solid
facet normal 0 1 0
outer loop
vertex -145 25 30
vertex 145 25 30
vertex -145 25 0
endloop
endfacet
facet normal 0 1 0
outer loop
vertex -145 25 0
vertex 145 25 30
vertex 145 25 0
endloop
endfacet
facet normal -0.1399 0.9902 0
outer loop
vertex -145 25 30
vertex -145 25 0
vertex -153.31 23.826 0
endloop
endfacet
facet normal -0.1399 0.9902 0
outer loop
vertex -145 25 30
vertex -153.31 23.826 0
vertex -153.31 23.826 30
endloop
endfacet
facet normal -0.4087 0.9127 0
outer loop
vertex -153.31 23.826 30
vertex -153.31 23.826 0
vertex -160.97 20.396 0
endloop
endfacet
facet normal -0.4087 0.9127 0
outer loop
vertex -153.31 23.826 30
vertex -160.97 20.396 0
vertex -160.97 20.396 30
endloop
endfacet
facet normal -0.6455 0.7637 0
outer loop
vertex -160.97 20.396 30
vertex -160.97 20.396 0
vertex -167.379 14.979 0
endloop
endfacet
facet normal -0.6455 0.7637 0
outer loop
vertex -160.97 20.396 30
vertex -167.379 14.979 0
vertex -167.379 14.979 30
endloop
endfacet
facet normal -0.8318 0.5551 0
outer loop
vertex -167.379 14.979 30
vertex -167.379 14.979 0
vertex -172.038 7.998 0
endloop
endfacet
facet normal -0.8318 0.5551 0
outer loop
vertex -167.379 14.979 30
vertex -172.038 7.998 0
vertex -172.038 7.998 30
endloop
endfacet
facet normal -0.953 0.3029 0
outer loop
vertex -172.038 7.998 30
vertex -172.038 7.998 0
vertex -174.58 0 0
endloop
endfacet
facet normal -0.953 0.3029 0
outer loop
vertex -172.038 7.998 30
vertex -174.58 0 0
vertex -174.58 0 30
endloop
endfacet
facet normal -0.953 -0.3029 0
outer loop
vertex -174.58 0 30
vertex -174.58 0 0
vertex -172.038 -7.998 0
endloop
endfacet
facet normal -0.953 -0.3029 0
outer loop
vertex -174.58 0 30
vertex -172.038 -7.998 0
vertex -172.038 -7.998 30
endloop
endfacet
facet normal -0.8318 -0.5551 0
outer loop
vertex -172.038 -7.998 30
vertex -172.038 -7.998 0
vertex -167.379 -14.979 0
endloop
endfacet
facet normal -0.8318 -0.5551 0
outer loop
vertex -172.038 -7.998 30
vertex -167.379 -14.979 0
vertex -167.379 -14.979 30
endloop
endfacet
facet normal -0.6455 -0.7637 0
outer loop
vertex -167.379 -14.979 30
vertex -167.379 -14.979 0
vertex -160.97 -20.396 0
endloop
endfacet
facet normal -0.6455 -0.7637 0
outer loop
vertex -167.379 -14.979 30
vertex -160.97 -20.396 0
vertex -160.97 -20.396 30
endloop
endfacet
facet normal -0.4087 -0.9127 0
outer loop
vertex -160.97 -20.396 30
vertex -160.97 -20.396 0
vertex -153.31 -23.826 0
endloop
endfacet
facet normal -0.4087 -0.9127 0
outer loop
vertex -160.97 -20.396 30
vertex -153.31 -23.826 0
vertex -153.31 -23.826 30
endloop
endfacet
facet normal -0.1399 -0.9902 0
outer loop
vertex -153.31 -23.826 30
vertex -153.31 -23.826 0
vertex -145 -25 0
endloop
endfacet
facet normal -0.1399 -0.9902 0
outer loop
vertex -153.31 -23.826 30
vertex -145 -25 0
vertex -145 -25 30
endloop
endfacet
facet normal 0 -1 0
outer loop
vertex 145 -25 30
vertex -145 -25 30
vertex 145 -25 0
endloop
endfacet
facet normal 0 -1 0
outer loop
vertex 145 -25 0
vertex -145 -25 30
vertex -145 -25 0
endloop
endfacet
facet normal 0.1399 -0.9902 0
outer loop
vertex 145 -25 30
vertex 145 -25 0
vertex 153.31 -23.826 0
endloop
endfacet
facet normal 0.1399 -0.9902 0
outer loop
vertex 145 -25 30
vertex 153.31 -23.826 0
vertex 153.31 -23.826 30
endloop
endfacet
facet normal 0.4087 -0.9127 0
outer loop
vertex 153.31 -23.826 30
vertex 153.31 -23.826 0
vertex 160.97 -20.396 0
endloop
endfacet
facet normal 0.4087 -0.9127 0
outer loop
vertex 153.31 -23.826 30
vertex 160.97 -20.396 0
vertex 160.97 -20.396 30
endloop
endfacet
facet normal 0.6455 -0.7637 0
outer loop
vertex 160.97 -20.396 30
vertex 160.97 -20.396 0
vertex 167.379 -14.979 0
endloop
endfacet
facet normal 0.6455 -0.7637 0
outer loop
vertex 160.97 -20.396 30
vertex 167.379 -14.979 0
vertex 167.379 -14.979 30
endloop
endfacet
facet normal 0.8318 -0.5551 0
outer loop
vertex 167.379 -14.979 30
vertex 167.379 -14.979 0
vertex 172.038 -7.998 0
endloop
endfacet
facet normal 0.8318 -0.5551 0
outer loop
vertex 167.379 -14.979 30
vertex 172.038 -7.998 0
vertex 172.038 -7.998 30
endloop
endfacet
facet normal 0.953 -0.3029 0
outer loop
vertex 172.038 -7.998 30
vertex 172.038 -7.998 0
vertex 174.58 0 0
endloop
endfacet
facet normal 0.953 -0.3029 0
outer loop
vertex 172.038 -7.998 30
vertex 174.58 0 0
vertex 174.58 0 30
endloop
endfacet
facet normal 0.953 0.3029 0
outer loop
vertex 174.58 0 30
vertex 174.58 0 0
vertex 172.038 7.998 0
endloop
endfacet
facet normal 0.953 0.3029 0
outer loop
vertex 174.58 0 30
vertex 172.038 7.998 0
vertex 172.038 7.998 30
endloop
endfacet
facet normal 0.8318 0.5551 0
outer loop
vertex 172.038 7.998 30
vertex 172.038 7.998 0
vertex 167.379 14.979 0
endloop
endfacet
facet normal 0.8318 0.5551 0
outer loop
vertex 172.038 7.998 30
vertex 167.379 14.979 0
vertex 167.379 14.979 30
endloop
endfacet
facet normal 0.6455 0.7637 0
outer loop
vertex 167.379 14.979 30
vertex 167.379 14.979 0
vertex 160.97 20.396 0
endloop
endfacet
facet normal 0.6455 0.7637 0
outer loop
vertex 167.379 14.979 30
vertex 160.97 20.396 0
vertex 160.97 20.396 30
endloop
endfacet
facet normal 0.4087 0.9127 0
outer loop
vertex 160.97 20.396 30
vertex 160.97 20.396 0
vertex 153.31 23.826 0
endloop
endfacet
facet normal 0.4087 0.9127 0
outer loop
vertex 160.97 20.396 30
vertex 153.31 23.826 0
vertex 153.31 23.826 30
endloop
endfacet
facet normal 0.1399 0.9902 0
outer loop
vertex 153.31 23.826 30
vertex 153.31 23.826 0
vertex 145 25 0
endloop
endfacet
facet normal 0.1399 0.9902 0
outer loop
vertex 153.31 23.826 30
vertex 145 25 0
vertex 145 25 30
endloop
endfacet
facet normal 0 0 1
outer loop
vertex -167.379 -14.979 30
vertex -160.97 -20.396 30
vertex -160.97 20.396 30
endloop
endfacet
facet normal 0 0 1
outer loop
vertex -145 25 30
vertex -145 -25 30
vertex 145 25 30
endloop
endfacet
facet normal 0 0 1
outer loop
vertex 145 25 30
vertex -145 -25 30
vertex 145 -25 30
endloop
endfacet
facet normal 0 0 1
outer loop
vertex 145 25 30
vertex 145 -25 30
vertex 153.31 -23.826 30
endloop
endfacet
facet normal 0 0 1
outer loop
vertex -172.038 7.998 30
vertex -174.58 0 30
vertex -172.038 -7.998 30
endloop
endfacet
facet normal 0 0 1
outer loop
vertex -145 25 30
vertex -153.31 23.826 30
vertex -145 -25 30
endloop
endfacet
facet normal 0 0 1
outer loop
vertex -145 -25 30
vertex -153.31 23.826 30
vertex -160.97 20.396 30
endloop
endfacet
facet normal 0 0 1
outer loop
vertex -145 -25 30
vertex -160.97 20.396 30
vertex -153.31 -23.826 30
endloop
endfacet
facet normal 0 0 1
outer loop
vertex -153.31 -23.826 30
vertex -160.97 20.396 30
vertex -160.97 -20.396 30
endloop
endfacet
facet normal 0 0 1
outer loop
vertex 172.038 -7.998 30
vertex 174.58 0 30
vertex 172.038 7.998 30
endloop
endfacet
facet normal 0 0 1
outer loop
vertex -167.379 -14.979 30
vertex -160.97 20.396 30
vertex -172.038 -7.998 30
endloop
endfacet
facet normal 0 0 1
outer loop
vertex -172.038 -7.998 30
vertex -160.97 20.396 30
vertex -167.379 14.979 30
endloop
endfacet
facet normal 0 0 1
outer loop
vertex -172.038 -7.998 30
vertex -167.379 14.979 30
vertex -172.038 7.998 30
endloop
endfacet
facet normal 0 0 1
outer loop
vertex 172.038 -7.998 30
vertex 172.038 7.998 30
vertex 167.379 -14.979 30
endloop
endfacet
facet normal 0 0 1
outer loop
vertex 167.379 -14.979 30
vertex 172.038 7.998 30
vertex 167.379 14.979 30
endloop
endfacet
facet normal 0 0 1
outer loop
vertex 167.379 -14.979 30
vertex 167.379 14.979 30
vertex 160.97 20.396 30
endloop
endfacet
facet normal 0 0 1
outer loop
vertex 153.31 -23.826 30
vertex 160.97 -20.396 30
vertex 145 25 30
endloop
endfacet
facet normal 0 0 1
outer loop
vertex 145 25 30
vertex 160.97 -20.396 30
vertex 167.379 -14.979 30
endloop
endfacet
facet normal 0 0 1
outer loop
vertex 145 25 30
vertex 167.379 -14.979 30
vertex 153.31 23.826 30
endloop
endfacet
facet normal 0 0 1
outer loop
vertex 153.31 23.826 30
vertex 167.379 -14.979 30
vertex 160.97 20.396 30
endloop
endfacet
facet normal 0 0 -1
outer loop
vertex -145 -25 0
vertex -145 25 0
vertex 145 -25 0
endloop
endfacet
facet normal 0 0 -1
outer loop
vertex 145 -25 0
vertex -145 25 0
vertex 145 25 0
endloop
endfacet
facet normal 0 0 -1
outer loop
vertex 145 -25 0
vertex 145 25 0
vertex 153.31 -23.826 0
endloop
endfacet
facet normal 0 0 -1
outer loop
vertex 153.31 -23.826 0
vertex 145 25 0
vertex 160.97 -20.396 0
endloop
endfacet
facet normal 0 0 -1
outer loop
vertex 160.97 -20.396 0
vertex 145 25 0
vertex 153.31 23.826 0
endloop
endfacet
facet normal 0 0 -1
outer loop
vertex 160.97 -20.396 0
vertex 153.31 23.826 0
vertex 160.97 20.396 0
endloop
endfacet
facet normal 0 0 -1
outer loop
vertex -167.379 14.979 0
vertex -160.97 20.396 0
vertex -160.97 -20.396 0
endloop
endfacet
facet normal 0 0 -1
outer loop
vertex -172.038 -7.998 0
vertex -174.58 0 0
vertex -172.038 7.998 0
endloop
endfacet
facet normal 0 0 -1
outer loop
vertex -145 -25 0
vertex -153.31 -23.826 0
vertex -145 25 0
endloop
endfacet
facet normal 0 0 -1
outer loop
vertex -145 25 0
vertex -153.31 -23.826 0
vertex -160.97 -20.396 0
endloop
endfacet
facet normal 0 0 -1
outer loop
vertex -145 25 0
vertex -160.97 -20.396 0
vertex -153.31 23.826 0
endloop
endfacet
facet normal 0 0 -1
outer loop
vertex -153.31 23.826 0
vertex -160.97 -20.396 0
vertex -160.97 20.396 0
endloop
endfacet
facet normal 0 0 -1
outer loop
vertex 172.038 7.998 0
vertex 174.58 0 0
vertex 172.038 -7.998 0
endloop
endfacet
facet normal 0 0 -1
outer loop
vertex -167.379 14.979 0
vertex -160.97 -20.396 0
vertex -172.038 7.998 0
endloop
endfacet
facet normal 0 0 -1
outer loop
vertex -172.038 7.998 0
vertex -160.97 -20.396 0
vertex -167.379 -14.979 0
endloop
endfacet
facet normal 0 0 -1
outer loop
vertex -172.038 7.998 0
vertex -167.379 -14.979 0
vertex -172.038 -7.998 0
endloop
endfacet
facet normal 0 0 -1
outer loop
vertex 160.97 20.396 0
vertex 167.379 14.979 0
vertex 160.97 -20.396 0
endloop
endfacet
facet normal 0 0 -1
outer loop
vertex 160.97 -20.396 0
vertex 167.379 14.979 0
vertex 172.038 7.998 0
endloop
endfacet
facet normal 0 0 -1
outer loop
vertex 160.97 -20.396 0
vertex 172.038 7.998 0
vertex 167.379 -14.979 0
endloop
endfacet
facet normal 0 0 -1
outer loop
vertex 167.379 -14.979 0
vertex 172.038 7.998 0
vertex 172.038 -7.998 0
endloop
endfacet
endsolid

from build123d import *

# Parameters (mm, degrees)
SALIENTE_EXTRUIR1_DEPTH = 30


with BuildPart() as part:
    # Croquis1 → Saliente-Extruir1 (new body)
    with BuildSketch(Plane.XY):
        with BuildLine():
            Line((-145, -25), (145, -25))
            ThreePointArc((145, -25), (164.364916731, -17.912878475), (174.580398915, 0))
            ThreePointArc((174.580398915, 0), (164.364916731, 17.912878475), (145, 25))
            Line((145, 25), (-145, 25))
            ThreePointArc((-145, 25), (-164.364916731, 17.912878475), (-174.580398915, 0))
            ThreePointArc((-174.580398915, 0), (-164.364916731, -17.912878475), (-145, -25))
        make_face()
    extrude(amount=SALIENTE_EXTRUIR1_DEPTH)


solid = part.part
